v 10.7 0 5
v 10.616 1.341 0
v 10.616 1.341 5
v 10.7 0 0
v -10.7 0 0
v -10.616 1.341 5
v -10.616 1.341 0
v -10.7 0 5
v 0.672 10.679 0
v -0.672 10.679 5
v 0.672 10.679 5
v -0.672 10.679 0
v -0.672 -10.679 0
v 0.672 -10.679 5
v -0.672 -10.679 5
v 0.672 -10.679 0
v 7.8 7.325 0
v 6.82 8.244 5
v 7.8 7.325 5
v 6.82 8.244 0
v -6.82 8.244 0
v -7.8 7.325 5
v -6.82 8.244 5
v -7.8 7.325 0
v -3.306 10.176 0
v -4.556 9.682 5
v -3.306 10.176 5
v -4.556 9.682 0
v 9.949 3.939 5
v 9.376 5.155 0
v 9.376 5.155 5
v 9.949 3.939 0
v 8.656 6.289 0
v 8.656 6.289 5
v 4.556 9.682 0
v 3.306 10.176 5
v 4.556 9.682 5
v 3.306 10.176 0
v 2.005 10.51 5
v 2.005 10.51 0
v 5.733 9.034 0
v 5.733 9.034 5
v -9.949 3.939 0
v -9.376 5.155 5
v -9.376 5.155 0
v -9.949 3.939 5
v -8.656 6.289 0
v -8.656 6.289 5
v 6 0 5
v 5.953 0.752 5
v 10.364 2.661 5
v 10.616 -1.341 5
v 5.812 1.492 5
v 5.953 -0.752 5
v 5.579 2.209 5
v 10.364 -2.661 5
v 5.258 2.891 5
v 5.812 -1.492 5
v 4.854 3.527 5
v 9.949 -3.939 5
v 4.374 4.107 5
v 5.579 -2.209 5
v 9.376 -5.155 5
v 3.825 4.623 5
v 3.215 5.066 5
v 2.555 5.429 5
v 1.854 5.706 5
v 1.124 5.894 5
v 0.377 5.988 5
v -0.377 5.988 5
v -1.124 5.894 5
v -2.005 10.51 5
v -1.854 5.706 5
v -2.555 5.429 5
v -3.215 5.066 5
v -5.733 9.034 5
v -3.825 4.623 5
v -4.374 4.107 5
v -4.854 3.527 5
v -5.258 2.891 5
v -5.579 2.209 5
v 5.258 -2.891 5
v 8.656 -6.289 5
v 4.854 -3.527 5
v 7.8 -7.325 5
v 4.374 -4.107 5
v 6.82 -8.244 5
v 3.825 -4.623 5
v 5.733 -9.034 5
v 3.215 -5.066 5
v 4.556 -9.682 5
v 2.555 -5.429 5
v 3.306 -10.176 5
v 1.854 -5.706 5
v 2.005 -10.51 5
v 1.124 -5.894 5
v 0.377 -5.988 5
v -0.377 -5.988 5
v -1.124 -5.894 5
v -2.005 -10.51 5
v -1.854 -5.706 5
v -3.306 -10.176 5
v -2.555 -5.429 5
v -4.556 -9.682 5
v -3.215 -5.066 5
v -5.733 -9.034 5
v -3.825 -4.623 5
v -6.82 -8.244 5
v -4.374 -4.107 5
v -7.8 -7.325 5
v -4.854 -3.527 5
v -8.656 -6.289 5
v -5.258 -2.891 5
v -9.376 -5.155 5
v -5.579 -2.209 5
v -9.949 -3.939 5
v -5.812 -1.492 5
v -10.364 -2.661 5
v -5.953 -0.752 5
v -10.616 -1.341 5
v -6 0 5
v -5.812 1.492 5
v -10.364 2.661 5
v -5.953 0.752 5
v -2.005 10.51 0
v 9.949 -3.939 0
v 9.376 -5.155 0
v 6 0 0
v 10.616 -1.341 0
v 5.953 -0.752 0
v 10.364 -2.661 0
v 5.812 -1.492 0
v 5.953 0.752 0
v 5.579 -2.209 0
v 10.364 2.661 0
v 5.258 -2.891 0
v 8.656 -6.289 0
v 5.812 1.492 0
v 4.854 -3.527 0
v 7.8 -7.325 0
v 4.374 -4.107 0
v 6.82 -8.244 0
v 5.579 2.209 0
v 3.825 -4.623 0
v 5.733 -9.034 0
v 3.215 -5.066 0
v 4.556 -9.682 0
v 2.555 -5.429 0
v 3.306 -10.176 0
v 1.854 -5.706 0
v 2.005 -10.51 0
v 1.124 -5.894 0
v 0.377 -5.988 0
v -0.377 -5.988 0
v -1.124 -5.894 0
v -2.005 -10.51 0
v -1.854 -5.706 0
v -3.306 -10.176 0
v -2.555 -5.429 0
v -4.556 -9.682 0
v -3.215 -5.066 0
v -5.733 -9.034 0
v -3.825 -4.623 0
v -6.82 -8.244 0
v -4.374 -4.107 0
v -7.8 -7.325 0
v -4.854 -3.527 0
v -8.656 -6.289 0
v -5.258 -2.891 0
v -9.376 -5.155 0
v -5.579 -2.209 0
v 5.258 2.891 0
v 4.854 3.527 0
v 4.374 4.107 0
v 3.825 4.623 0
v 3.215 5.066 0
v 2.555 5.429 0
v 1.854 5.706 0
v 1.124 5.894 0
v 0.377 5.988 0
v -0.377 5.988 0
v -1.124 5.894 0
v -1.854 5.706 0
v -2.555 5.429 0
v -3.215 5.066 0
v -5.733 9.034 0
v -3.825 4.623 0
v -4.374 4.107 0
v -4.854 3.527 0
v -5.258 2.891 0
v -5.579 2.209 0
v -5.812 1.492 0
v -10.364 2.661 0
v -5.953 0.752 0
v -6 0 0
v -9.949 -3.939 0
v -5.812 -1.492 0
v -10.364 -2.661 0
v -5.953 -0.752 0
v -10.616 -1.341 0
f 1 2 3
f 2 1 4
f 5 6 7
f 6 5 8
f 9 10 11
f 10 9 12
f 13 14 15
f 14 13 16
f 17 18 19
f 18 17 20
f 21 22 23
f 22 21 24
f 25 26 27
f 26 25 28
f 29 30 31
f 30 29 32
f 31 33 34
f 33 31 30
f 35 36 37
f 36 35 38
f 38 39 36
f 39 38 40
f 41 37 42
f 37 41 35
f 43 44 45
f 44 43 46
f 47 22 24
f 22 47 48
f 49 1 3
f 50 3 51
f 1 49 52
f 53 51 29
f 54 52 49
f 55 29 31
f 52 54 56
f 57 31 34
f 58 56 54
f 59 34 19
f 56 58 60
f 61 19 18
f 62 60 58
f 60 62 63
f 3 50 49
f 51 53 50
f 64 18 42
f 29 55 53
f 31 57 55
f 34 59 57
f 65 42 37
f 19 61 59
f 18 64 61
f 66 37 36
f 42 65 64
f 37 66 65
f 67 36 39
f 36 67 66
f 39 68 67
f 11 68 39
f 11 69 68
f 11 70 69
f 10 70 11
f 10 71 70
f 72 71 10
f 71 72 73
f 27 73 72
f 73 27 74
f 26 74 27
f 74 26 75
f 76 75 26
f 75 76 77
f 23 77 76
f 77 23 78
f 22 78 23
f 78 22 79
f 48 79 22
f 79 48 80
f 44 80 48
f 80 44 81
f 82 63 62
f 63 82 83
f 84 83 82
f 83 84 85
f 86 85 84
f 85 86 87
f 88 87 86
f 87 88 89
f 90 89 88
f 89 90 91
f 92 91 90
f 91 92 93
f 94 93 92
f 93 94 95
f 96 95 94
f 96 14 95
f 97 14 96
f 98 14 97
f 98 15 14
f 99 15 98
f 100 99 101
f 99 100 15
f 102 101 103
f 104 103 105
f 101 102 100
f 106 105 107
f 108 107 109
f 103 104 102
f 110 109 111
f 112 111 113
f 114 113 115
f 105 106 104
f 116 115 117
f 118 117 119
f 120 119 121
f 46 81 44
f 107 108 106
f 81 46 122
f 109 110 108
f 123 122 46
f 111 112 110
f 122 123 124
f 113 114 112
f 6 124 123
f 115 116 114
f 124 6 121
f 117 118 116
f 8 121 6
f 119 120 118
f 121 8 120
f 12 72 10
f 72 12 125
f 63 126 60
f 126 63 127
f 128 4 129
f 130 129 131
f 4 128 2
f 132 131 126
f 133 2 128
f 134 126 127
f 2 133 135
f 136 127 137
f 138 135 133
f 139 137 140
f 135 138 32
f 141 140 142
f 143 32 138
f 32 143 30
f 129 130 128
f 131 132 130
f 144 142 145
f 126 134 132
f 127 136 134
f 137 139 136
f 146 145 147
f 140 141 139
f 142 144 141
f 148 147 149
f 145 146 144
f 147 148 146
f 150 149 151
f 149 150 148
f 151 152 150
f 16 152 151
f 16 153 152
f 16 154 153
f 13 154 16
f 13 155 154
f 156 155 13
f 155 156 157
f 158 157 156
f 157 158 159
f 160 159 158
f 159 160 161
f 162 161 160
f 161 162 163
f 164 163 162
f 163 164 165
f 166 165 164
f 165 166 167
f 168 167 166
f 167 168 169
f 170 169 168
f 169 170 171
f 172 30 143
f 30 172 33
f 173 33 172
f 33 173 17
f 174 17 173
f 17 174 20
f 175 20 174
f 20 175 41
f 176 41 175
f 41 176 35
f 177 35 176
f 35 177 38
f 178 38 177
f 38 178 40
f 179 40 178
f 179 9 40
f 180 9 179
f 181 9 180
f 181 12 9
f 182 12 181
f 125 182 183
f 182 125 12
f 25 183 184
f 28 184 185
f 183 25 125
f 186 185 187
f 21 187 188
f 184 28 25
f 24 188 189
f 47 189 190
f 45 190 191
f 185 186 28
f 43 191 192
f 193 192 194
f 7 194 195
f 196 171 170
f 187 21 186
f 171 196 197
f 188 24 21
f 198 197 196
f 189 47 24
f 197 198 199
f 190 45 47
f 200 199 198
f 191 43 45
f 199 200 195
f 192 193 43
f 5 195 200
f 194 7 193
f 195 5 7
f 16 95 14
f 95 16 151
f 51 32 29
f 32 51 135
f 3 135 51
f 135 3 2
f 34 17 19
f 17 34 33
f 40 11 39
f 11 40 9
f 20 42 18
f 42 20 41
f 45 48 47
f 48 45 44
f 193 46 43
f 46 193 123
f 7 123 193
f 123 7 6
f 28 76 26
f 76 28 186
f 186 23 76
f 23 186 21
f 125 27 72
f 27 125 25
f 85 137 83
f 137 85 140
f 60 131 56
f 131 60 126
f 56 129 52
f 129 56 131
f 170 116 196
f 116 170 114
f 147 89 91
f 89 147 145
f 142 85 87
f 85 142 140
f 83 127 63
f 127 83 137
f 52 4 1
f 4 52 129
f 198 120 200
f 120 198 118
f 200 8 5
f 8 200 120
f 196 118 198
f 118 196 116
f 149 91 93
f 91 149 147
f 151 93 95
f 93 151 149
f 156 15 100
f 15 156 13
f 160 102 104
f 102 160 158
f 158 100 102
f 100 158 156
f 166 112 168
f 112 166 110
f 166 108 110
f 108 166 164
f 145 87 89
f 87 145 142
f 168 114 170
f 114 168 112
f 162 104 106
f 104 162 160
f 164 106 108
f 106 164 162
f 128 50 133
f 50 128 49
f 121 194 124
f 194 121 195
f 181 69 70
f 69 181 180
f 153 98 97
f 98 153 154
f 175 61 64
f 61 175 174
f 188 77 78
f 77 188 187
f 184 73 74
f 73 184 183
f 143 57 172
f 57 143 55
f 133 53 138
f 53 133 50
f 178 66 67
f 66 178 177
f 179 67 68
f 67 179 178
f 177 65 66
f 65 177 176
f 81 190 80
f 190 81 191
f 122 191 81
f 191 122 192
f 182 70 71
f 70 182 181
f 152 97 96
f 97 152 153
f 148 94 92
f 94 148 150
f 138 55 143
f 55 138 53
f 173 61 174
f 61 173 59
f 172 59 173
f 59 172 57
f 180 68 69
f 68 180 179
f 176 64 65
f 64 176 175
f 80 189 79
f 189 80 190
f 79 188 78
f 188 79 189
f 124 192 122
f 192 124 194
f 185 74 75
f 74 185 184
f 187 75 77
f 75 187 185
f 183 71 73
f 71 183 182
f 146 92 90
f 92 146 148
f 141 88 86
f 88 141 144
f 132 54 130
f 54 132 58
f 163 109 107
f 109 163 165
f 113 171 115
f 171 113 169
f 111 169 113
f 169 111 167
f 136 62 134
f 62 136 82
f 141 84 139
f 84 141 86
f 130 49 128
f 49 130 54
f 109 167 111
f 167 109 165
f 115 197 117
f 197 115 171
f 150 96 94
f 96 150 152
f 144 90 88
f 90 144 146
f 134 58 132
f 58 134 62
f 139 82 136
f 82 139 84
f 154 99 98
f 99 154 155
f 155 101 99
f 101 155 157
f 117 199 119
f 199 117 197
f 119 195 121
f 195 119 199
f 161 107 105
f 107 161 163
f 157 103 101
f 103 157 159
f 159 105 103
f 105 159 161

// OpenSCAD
$fn = 50;


difference() {
	union() {
		translate(v = [0, 0, 0]) {
			rotate(a = [0, 0, 0]) {
				cylinder(h = 5, r = 10.7000000000);
			}
		}
	}
	union() {
		translate(v = [0, 0, 0]) {
			rotate(a = [0, 0, 0]) {
				cylinder(h = 5, r = 6.0000000000);
			}
		}
	}
}
